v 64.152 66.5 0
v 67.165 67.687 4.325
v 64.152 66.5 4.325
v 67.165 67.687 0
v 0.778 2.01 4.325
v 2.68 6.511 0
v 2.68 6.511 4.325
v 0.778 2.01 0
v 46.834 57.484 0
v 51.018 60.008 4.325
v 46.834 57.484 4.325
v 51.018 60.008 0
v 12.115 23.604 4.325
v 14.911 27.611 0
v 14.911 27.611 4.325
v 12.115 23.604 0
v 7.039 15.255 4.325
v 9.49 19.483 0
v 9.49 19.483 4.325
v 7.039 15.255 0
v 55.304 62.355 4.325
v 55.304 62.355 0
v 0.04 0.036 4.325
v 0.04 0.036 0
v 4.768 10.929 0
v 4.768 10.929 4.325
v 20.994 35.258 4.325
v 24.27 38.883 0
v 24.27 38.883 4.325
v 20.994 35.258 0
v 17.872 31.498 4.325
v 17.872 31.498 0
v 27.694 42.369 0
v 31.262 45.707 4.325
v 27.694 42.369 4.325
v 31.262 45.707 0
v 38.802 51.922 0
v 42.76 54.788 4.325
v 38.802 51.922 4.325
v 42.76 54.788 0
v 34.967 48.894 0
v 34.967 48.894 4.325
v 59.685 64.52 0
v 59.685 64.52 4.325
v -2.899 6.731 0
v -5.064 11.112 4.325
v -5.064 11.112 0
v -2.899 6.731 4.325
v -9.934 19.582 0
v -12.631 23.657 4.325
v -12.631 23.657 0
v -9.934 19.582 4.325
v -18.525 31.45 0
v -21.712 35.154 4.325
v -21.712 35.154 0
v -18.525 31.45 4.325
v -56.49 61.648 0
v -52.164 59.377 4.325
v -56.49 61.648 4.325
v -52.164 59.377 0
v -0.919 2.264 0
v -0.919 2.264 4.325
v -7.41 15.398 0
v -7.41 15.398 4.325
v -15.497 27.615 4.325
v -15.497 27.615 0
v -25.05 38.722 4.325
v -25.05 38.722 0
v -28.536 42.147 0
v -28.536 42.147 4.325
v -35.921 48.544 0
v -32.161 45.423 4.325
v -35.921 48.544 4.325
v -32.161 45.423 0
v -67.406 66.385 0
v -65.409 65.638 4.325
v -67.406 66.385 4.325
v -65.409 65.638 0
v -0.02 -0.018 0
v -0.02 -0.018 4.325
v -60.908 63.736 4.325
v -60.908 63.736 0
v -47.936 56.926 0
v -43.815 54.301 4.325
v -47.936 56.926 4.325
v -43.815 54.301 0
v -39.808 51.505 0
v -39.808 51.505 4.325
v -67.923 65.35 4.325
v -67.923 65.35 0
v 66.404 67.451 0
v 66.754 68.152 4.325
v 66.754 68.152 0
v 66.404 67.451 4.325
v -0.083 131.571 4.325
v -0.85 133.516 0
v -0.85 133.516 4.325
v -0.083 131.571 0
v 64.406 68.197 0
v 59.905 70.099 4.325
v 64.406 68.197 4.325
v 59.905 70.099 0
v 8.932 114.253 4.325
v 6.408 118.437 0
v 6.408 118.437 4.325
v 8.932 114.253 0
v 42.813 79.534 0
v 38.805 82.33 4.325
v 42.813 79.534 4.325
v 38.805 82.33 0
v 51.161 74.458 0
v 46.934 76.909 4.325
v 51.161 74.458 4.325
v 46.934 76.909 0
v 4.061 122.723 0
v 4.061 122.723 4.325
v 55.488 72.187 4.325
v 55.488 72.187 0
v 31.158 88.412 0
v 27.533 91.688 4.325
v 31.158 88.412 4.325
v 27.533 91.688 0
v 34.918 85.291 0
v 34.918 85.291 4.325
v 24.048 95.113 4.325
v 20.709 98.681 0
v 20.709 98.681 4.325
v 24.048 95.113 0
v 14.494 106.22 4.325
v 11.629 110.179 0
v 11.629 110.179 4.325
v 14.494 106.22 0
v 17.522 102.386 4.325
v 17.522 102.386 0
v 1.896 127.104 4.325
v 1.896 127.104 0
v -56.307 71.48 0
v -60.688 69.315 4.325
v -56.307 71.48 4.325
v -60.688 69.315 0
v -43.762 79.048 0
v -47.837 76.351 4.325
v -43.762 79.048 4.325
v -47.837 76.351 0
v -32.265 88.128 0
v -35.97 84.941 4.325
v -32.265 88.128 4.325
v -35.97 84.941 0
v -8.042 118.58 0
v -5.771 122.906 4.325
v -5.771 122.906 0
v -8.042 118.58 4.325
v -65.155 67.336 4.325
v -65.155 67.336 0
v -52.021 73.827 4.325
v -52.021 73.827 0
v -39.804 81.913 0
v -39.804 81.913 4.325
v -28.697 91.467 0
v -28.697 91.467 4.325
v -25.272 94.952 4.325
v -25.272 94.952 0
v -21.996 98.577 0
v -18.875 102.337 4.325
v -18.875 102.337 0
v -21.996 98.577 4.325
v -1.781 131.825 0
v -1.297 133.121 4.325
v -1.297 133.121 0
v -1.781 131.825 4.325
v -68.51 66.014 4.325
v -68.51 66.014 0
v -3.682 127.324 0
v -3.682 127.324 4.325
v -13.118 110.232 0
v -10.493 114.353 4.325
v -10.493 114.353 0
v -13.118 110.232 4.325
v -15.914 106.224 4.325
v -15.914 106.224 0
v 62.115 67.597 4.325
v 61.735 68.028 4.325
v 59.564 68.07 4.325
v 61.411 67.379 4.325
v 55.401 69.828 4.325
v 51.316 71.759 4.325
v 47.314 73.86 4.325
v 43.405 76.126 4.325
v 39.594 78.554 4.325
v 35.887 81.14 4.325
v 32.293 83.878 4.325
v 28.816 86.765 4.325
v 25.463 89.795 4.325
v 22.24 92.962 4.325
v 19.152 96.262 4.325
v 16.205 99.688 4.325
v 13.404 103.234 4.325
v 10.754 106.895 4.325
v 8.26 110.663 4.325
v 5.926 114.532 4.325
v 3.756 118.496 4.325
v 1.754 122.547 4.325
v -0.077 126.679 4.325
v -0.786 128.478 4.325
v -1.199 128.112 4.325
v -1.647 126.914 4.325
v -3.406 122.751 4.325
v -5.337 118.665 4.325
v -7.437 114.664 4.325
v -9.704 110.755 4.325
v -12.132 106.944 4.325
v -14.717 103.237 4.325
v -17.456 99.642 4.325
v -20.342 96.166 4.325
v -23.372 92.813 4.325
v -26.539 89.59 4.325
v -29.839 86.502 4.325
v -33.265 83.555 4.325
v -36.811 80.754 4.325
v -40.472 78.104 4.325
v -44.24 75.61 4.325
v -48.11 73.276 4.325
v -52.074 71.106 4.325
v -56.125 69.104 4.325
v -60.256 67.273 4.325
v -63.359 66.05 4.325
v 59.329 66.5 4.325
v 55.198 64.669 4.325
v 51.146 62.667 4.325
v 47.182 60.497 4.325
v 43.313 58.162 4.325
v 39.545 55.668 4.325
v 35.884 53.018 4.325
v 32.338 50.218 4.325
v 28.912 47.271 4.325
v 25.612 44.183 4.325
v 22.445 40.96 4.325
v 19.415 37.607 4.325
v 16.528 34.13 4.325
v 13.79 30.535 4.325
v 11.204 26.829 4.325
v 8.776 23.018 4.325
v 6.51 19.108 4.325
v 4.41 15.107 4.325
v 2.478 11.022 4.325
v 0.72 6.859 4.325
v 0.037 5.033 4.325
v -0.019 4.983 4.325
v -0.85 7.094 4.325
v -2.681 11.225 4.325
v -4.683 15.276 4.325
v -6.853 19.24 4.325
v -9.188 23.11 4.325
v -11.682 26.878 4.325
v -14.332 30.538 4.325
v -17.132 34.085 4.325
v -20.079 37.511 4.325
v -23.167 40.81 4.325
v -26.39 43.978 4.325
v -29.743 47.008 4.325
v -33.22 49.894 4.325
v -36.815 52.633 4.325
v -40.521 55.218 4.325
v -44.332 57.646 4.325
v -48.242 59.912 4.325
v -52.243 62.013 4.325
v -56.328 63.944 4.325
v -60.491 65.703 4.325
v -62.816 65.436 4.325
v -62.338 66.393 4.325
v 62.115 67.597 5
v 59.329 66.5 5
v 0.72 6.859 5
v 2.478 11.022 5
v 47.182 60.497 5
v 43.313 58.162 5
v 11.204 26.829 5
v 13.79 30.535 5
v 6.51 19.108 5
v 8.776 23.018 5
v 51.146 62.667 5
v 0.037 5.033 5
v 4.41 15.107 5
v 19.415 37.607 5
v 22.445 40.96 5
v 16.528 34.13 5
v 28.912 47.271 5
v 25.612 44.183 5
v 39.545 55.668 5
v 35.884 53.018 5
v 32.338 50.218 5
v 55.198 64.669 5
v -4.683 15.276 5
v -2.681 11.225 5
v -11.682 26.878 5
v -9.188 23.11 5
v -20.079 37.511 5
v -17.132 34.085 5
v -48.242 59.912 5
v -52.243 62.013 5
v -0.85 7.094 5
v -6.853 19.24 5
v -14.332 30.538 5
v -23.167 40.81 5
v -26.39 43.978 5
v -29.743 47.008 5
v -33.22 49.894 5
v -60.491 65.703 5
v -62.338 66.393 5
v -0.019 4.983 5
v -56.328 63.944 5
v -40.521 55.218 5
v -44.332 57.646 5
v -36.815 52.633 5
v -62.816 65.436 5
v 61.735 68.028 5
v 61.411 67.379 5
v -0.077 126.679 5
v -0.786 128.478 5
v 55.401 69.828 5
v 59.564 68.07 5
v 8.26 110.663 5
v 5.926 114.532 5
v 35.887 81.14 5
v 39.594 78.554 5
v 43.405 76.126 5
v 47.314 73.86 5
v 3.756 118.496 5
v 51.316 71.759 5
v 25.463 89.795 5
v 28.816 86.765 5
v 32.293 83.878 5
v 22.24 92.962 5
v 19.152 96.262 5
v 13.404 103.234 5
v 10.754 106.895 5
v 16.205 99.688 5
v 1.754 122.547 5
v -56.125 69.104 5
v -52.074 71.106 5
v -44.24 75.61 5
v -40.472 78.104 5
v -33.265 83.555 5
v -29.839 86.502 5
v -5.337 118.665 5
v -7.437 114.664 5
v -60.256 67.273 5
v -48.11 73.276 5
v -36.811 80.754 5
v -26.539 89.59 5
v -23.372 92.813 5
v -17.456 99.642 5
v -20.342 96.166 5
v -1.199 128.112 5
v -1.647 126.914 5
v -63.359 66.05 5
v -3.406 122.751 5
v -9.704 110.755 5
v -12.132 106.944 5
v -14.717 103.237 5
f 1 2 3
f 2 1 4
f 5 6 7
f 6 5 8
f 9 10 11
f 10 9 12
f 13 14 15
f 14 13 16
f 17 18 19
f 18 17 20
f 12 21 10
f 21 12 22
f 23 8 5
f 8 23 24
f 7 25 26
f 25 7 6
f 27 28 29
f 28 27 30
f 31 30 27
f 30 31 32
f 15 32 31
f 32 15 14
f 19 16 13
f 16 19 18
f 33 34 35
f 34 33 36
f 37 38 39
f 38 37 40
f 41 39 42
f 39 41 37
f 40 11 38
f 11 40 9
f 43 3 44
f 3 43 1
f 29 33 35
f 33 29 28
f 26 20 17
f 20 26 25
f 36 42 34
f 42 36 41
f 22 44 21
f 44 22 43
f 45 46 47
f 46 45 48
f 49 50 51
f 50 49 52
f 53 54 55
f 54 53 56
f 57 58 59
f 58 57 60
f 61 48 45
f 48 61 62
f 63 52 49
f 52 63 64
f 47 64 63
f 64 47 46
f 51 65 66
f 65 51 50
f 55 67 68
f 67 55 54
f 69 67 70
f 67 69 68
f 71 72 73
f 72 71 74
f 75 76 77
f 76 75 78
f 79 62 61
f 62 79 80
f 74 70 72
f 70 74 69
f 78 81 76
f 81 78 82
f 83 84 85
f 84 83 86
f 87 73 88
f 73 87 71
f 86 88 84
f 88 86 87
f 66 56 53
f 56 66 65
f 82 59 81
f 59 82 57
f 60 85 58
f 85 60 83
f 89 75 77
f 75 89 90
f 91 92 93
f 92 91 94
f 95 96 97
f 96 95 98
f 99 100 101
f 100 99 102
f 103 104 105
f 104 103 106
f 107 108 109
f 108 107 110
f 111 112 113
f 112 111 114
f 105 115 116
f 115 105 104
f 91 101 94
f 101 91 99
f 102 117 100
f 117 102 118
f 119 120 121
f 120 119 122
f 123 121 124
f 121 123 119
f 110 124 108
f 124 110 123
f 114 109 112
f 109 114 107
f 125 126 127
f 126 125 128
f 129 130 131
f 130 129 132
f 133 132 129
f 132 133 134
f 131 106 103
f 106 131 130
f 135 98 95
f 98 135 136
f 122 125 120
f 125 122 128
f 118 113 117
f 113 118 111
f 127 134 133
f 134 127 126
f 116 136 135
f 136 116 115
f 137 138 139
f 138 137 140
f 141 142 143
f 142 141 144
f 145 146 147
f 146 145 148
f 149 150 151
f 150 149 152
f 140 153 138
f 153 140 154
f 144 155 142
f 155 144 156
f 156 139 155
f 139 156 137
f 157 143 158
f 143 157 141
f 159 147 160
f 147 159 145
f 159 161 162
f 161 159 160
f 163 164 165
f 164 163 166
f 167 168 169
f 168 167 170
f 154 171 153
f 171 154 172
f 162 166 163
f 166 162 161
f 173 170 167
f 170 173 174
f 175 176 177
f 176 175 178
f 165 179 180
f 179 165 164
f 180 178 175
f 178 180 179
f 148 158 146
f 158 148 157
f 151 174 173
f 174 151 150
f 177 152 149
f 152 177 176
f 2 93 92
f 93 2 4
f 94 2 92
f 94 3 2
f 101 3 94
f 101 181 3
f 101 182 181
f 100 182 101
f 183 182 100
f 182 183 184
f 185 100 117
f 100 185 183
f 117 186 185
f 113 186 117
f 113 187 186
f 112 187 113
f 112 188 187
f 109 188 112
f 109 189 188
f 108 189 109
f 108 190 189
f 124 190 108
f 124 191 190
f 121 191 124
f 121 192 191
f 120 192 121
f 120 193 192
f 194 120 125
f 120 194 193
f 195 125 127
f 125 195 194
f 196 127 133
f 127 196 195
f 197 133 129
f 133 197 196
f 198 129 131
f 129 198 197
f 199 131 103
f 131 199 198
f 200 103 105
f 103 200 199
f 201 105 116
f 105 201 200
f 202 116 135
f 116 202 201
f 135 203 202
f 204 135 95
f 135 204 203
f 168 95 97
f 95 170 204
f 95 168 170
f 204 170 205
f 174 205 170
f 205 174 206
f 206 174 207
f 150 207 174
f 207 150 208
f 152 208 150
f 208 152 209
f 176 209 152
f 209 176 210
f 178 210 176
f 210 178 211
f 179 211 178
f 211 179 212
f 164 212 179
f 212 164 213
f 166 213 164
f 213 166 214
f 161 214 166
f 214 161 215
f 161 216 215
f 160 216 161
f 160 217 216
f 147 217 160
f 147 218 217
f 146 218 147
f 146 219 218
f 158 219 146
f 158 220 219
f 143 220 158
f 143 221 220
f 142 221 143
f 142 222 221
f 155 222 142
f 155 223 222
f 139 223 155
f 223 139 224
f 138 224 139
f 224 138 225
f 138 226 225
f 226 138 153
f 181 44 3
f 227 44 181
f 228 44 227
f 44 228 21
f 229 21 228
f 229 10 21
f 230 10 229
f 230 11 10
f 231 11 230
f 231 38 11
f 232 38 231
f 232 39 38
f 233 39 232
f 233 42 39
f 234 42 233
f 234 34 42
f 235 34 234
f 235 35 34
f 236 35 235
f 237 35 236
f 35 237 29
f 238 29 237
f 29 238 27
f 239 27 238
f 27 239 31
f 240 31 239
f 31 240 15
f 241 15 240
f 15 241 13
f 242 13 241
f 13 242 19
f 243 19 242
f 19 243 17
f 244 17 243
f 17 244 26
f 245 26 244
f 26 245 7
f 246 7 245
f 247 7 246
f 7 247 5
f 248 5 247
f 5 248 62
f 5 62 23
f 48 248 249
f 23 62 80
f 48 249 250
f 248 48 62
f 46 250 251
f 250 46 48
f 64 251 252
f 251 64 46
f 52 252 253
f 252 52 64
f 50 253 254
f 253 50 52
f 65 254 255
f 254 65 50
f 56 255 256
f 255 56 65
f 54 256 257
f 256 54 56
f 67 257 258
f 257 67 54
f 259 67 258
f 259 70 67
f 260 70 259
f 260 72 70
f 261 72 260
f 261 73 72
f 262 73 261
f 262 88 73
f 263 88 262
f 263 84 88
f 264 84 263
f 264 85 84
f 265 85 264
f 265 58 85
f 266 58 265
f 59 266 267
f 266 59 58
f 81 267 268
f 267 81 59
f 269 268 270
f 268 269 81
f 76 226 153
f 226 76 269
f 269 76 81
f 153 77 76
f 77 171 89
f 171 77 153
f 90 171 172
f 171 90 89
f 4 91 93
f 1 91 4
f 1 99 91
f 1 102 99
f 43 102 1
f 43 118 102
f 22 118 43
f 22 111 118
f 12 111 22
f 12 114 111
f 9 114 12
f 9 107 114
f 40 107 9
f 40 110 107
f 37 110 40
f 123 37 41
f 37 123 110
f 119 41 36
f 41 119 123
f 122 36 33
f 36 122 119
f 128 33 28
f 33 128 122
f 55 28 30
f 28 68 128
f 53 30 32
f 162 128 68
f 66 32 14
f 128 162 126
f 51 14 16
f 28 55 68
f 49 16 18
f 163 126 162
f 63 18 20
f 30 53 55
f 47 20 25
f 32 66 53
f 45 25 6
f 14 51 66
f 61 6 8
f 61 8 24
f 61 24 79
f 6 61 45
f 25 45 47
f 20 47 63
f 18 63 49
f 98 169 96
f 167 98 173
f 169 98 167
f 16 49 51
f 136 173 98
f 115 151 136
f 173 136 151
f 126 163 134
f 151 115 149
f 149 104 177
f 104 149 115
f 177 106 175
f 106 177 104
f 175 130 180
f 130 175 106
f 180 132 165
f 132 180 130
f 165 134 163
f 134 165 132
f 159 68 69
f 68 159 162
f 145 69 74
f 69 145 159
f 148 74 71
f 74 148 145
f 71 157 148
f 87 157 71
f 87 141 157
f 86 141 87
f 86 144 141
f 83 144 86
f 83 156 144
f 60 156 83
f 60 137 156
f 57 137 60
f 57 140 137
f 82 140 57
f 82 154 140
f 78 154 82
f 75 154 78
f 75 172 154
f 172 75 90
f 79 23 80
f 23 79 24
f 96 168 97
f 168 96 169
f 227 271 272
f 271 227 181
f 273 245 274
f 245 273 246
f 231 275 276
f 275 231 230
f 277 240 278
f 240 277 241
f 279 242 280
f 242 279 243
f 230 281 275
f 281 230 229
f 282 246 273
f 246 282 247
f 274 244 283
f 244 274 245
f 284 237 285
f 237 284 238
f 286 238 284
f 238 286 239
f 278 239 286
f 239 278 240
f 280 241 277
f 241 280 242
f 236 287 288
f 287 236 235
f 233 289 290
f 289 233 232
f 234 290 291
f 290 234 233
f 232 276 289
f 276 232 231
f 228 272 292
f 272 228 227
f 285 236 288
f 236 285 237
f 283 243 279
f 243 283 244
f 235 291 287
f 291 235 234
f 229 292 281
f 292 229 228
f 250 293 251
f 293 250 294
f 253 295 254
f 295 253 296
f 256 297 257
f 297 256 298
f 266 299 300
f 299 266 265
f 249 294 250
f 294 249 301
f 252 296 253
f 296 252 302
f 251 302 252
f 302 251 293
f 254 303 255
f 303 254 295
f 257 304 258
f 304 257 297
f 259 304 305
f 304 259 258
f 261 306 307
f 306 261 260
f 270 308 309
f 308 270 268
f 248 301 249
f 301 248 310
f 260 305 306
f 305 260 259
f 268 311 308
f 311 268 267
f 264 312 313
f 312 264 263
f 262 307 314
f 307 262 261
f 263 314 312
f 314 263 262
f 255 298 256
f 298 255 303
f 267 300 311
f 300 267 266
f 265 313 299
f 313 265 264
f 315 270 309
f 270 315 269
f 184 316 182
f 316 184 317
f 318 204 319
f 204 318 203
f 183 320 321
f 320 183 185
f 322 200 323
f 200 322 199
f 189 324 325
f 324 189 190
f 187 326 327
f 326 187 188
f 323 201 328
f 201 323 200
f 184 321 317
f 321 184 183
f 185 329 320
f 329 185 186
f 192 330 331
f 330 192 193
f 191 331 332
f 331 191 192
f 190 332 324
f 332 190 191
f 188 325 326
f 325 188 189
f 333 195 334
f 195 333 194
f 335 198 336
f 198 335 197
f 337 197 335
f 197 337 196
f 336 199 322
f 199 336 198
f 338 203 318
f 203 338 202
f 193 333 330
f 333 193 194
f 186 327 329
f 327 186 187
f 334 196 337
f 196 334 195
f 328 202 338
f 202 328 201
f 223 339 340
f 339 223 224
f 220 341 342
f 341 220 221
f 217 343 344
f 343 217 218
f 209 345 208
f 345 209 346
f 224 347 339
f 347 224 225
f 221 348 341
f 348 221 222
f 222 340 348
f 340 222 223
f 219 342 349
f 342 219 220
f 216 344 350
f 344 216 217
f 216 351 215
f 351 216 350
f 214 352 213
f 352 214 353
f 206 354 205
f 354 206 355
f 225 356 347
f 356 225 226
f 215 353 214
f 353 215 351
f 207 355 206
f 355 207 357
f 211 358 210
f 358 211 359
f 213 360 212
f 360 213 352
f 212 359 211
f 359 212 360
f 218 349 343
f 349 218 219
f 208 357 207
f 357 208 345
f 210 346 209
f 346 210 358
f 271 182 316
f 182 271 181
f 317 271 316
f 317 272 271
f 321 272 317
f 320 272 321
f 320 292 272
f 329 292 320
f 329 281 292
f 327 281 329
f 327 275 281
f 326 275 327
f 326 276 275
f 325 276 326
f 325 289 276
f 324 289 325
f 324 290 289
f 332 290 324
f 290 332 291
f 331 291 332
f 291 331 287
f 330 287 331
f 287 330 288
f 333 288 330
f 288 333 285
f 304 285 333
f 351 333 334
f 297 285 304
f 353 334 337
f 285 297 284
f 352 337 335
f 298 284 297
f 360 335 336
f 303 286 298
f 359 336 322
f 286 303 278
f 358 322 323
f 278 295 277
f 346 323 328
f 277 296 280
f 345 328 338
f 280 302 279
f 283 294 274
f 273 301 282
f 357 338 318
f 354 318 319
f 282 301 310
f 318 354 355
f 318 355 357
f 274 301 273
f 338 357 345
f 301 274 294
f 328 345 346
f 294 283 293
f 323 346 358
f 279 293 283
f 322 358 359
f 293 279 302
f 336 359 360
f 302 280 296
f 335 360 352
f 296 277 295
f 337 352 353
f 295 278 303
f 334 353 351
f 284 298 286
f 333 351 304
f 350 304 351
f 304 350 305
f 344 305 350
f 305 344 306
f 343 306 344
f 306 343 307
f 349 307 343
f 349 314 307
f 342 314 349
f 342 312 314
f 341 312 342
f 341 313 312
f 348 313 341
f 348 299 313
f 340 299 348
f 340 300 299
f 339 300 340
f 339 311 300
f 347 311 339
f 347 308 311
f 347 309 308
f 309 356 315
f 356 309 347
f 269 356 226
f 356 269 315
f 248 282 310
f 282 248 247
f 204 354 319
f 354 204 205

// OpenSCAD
radius=107.890845;

module part() {
  translate([0,0,-0.3])
    cylinder(r=radius, h=6, $fn=150);
}

delta=radius-71/2;

module leaf() {
  intersection() {
   translate([0,delta,0])
    part();
   translate([0,-delta,0])
    part();
  }
}

module fourleafs() {
translate([80,0,0])
  leaf();
translate([-71/2,0,0])
 rotate([0,0,90])
  leaf();
translate([80,80+71/2,0])
 rotate([0,0,90])
  leaf();
translate([-71/2,80+71/2,0])
  leaf();
}


module base() {
 rotate([0,0,20])
  translate([-7,0,0])
   cube([95,93,4]);
}

module quad() {
  difference() {
  base();
  fourleafs();
  }
}

scale(1.0813)
 rotate([0,0,21.5])
  quad();

translate([0,5,3])
 scale([1,1,0.5])
  rotate([0,0,21.5])
   quad();
